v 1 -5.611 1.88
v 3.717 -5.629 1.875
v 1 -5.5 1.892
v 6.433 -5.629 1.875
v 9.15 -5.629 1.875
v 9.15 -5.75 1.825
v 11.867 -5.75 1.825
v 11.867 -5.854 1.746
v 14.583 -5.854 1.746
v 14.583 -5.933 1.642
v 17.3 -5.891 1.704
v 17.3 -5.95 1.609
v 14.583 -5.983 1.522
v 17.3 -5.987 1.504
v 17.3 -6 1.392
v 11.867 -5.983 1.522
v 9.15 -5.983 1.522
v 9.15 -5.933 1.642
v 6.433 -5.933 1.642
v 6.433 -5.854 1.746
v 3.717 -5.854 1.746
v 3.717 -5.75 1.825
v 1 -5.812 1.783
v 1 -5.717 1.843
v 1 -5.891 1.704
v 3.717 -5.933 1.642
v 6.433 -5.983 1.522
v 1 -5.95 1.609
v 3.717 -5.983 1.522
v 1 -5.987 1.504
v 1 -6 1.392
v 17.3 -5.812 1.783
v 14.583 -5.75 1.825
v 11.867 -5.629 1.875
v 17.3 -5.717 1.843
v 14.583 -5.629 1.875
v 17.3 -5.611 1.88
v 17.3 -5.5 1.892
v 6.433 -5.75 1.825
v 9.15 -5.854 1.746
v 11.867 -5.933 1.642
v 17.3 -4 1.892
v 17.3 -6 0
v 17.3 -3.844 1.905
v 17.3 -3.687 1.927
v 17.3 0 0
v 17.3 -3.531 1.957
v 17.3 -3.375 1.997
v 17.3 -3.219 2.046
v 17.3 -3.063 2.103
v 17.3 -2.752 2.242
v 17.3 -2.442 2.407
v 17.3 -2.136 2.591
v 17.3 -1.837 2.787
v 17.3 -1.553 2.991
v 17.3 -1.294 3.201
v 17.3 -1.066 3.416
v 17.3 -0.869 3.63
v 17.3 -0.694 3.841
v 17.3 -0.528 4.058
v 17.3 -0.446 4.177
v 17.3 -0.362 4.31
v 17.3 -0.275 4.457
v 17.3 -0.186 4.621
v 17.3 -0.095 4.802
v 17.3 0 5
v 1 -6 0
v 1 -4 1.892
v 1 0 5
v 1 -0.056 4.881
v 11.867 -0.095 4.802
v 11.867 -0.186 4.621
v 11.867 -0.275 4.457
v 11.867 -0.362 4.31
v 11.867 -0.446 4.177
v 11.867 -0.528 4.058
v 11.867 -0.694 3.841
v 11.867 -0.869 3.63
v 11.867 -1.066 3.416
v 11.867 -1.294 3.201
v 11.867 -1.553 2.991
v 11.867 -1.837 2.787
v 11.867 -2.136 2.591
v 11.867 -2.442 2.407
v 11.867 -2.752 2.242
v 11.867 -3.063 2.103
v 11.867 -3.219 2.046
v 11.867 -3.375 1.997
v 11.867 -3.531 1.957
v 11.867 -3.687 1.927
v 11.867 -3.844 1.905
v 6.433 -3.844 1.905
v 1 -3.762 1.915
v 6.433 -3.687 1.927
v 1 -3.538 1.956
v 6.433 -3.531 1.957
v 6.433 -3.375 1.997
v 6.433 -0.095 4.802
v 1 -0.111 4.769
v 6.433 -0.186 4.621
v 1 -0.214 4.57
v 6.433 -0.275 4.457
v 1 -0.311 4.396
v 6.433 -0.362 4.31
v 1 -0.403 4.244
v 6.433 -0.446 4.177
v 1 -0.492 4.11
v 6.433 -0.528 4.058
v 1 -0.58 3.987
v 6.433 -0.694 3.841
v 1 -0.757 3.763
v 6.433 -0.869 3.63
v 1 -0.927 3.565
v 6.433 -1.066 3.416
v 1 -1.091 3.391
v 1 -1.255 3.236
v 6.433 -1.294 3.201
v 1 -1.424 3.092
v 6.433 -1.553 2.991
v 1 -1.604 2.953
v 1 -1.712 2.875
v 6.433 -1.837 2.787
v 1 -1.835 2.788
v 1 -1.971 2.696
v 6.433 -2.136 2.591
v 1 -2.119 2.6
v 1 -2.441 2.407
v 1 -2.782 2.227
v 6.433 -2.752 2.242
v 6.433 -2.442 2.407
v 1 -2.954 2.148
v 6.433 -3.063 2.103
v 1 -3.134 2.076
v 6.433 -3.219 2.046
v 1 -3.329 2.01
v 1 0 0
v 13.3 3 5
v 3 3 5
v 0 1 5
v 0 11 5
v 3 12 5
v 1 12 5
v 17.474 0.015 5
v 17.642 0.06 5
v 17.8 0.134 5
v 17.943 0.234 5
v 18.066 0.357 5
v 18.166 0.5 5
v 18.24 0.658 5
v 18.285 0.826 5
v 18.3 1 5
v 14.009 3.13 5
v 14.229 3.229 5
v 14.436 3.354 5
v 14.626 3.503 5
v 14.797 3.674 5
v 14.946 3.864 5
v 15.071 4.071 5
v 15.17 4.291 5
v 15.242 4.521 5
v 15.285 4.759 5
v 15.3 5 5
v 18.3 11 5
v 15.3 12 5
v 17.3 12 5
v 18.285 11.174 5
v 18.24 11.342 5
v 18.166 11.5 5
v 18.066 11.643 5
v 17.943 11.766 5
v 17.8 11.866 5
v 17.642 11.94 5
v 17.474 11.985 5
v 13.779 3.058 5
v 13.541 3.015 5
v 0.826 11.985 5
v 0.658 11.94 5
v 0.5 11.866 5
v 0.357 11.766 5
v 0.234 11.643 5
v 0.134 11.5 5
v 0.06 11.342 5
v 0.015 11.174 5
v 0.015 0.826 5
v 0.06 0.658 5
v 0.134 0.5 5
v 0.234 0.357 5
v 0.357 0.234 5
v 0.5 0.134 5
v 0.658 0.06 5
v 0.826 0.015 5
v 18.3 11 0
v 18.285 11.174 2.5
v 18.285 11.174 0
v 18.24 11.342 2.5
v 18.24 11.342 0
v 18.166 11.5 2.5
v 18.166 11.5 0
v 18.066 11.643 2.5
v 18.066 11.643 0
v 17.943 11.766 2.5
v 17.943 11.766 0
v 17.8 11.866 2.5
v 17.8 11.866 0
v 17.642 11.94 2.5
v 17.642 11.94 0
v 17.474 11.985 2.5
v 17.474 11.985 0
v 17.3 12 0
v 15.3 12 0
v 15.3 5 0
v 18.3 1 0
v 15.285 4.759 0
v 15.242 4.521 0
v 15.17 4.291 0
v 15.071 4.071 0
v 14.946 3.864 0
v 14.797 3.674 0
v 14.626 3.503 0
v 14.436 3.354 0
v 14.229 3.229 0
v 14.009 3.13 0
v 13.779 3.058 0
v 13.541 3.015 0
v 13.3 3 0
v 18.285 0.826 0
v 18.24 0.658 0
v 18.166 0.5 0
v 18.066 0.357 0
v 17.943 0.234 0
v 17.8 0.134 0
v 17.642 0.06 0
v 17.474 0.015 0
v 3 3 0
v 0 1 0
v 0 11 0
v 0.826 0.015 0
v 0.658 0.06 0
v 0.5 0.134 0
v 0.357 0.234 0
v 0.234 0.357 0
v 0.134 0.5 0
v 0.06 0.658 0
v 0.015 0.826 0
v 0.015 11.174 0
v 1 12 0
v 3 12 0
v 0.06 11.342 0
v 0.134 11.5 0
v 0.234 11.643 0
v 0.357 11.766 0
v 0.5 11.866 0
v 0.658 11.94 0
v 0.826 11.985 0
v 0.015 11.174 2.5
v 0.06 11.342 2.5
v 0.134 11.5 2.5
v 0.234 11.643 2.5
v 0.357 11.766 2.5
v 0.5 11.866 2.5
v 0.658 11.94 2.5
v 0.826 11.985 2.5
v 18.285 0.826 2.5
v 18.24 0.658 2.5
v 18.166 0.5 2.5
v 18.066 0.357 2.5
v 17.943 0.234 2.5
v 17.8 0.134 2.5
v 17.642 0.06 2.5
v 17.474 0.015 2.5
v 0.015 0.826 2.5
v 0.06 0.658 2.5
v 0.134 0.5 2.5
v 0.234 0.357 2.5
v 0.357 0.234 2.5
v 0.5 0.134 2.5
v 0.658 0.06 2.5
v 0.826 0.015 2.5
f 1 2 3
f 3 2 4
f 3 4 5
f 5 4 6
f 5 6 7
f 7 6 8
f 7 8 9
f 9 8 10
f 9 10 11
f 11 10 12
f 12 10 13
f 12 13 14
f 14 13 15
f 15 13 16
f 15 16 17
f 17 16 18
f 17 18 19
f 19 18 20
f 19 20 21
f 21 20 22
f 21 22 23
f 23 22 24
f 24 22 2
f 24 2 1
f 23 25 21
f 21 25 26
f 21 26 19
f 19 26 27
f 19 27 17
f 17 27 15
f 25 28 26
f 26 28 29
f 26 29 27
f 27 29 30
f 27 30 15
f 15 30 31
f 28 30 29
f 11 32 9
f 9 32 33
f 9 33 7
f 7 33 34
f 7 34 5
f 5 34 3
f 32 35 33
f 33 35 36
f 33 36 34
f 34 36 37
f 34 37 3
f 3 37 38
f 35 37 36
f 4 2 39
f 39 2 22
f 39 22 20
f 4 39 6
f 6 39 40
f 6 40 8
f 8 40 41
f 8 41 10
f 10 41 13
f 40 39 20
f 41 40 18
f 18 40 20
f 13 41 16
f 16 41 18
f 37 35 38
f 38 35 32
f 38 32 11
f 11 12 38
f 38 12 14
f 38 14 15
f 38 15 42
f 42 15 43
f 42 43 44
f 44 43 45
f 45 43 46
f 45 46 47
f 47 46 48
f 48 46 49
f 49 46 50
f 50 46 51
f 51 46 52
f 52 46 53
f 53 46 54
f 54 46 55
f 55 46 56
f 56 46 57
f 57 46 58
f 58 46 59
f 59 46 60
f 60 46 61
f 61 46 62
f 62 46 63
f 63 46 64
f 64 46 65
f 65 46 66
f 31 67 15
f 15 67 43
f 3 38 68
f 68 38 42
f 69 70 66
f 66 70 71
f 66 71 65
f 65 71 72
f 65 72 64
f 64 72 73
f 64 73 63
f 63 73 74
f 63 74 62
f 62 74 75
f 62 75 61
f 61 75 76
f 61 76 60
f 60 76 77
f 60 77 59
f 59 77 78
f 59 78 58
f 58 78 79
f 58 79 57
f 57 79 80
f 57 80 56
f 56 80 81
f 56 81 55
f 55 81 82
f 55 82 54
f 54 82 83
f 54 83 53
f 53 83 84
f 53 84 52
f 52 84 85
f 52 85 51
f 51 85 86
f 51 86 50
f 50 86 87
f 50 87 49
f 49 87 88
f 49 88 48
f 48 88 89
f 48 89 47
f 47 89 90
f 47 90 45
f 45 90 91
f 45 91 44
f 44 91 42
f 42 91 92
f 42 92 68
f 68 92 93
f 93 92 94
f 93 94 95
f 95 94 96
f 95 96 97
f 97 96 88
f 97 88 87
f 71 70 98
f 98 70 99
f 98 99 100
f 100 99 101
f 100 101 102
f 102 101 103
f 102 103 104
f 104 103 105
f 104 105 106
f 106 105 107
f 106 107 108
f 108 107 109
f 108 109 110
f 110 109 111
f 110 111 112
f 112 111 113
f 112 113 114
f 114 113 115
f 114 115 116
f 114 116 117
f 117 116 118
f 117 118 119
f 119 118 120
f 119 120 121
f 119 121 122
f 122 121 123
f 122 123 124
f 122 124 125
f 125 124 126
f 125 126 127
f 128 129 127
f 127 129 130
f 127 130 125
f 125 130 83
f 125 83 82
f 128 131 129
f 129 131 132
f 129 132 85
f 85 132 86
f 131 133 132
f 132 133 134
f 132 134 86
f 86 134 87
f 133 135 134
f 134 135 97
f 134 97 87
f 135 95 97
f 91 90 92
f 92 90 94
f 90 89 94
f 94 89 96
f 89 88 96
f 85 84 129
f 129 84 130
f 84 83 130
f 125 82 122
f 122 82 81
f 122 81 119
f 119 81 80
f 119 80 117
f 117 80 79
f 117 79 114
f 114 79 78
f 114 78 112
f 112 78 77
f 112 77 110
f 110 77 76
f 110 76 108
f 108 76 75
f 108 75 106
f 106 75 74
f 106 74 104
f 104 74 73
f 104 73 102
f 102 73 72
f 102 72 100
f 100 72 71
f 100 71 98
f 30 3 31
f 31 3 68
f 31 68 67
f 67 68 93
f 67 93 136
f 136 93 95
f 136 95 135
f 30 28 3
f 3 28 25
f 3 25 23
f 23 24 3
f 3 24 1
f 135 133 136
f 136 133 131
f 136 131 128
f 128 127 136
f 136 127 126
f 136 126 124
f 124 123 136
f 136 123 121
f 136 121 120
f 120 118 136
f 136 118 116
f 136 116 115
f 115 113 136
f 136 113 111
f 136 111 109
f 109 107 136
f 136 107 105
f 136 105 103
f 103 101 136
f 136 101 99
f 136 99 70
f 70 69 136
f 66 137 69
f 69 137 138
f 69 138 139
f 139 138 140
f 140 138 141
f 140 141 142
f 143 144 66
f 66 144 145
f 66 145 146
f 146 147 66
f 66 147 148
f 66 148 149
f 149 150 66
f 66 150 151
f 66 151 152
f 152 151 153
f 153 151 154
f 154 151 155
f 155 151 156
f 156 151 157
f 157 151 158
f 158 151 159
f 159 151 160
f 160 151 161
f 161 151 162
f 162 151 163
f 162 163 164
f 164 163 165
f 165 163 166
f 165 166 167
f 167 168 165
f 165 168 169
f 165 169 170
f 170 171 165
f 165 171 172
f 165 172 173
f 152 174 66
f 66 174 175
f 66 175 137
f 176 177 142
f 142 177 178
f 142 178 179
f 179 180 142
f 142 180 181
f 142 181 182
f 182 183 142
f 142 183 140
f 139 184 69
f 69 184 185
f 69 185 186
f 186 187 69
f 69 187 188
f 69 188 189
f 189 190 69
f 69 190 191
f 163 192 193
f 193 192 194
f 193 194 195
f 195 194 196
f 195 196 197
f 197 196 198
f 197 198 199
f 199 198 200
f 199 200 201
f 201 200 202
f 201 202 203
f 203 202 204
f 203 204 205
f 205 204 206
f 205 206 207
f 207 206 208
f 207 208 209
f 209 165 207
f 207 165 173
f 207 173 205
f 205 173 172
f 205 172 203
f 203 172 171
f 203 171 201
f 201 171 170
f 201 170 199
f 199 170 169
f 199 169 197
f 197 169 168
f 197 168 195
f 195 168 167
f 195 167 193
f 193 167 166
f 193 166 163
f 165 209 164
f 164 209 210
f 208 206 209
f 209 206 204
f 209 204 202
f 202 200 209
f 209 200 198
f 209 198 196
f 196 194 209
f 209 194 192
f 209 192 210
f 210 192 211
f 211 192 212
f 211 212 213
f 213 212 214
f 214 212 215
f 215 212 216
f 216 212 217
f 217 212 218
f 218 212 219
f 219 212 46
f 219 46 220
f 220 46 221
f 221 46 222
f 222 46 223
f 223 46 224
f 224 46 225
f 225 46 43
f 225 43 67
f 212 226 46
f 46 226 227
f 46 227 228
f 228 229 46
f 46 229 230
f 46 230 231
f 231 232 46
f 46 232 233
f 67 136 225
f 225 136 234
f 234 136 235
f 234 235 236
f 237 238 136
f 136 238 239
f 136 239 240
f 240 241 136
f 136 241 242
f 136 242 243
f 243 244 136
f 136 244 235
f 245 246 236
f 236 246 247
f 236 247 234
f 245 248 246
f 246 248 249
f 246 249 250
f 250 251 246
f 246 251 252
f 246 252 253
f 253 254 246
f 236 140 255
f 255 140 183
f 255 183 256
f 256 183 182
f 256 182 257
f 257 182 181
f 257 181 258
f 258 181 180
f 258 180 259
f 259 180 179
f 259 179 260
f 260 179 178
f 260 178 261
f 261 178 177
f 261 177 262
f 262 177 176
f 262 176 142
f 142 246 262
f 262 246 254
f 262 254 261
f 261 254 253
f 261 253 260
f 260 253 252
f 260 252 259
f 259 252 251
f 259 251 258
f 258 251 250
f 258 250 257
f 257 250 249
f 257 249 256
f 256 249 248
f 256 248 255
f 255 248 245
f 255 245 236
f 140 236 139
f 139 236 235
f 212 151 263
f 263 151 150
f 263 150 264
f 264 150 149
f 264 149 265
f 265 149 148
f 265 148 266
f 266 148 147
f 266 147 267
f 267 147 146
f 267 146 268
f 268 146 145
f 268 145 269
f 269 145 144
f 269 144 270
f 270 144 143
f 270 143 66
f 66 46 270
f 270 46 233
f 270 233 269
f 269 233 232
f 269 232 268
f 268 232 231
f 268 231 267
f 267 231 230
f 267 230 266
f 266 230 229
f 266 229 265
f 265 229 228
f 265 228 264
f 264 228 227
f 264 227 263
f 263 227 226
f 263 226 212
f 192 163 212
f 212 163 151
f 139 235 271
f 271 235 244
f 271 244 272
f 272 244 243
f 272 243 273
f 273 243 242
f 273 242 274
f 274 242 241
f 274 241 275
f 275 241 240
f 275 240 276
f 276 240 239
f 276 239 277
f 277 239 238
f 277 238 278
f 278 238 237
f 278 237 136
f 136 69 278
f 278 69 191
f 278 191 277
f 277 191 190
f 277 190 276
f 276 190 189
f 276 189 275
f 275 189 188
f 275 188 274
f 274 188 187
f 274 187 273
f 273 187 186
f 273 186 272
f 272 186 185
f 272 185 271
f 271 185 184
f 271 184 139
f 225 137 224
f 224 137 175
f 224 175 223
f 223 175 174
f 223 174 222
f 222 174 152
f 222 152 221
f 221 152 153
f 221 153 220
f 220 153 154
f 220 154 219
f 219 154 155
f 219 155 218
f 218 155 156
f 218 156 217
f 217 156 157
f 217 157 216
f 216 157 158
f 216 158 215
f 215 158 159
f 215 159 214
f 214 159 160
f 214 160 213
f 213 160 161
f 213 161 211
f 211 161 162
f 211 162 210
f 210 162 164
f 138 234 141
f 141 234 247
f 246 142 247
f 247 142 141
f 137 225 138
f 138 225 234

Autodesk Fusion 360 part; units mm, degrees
sketch "Sketch1" plane through (0, 0, 0) normal (0, 1, 0) x (1, 0, 0)
  line L0 (0, 0) -> (18.3, 0)
  line L1 (18.3, 0) -> (18.3, -5)
  line L2 (18.3, -5) -> (0, -5)
  line L3 (0, -5) -> (0, 0)
  dimension "d1" = 18.3
  dimension "d2" = 5
extrude "Extrude1" add sketch "Sketch1" along normal blind 3
sketch "Sketch2" plane through (0, 3, 0) normal (0, 1, 0) x (-1, 0, 0)
  line L0 (0, 5) -> (-18.3, 5)
  line L1 (-18.3, 5) -> (-18.3, 0)
  line L2 (-18.3, 0) -> (0, 0)
  line L3 (0, 0) -> (0, 5)
  line L4 (0, 0) -> (-3, 0)
  line L5 (-3, 0) -> (-3, 5)
  line L6 (-3, 5) -> (0, 5)
  line L7 (0, 5) -> (0, 0)
  line L8 (-18.3, 0) -> (-15.3, 0)
  line L9 (-15.3, 0) -> (-15.3, 5)
  line L10 (-15.3, 5) -> (-18.3, 5)
  line L11 (-18.3, 5) -> (-18.3, 0)
  dimension "d5" = 3
  dimension "d6" = 3
  dimension "d7" = 5
extrude "Extrude2" add sketch "Sketch2" along normal blind 9 contours L0 L2 L3 L4 L5 L6 L7 | L0 L1 L2 L8 L9 L10 L11
fillet "Fillet1" radius 2 1 edges at (15.3, 3, 2.5)
fillet "Fillet2" radius 1 4 edges at (0, 0, 2.5) (18.3, 0, 2.5) (0, 12, 2.5) (18.3, 12, 2.5)
extrude "Extrude3" add 1 faces at (6.4333, 0, 1.6667) along direction (0, -1, 0) blind 4
sketch "Sketch3" plane through (17.3, 0, 0) normal (1, 0, 0) x (0, 0, -1)
  line L0 (0, 0) -> (-5, 0)
  line L1 (-5, 0) -> (-5, -4)
  line L2 (-5, -4) -> (0, -4)
  line L3 (0, -4) -> (0, 0)
  line L4 (-2.5, 0) -> (-2.5, -4) construction
  spline S0 degree 5 poles (-5, 0) (-4.9471, -0.0246) (-4.844, -0.0733) (-4.6979, -0.1449) (-4.5202, -0.2376) (-4.3258, -0.349) (-4.157, -0.4565) (-4.0094, -0.5614) (-3.8742, -0.666) (-3.7405, -0.7738) (-3.6051, -0.8883) (-3.4674, -1.0128) (-3.3291, -1.1499) (-3.192, -1.3006) (-3.0571, -1.4644) (-2.9245, -1.6395) (-2.7947, -1.8235) (-2.6678, -2.0138) (-2.5446, -2.208) (-2.4267, -2.4046) (-2.316, -2.6025) (-2.2148, -2.8012) (-2.1251, -3.0004) (-2.0487, -3.1999) (-1.9864, -3.3996) (-1.9389, -3.5995) (-1.9129, -3.7596) (-1.9, -3.8798) (-1.8945, -3.9599) (-1.8924, -4) knots 0 0 0 0 0 0 0.04 0.08 0.12 0.16 0.2 0.24 0.28 0.32 0.36 0.4 0.44 0.48 0.52 0.56 0.6 0.64 0.68 0.72 0.76 0.8 0.84 0.88 0.92 0.96 1 1 1 1 1 1
  line L5 (-4.3837, -0.2829) -> (-3.5871, -0.8801)
  point P0 (-3.9854, -0.5815)
  point P1 (-3.3558, -1.126)
  point P2 (-2.6836, -1.992)
  point P3 (-2.1229, -3.0139)
extrude "Extrude4" cut sketch "Sketch3" against normal blind 68 contours L1 L2 S0
extrude "Extrude5" add 1 faces at (6.4333, -4, 0.6308) along direction (0, -1, 0) blind 2
fillet "Fillet3" radius 0.5 1 edges at (9.15, -6, 1.8924)
equation "d1 = 12.3 mm + 6 mm"
